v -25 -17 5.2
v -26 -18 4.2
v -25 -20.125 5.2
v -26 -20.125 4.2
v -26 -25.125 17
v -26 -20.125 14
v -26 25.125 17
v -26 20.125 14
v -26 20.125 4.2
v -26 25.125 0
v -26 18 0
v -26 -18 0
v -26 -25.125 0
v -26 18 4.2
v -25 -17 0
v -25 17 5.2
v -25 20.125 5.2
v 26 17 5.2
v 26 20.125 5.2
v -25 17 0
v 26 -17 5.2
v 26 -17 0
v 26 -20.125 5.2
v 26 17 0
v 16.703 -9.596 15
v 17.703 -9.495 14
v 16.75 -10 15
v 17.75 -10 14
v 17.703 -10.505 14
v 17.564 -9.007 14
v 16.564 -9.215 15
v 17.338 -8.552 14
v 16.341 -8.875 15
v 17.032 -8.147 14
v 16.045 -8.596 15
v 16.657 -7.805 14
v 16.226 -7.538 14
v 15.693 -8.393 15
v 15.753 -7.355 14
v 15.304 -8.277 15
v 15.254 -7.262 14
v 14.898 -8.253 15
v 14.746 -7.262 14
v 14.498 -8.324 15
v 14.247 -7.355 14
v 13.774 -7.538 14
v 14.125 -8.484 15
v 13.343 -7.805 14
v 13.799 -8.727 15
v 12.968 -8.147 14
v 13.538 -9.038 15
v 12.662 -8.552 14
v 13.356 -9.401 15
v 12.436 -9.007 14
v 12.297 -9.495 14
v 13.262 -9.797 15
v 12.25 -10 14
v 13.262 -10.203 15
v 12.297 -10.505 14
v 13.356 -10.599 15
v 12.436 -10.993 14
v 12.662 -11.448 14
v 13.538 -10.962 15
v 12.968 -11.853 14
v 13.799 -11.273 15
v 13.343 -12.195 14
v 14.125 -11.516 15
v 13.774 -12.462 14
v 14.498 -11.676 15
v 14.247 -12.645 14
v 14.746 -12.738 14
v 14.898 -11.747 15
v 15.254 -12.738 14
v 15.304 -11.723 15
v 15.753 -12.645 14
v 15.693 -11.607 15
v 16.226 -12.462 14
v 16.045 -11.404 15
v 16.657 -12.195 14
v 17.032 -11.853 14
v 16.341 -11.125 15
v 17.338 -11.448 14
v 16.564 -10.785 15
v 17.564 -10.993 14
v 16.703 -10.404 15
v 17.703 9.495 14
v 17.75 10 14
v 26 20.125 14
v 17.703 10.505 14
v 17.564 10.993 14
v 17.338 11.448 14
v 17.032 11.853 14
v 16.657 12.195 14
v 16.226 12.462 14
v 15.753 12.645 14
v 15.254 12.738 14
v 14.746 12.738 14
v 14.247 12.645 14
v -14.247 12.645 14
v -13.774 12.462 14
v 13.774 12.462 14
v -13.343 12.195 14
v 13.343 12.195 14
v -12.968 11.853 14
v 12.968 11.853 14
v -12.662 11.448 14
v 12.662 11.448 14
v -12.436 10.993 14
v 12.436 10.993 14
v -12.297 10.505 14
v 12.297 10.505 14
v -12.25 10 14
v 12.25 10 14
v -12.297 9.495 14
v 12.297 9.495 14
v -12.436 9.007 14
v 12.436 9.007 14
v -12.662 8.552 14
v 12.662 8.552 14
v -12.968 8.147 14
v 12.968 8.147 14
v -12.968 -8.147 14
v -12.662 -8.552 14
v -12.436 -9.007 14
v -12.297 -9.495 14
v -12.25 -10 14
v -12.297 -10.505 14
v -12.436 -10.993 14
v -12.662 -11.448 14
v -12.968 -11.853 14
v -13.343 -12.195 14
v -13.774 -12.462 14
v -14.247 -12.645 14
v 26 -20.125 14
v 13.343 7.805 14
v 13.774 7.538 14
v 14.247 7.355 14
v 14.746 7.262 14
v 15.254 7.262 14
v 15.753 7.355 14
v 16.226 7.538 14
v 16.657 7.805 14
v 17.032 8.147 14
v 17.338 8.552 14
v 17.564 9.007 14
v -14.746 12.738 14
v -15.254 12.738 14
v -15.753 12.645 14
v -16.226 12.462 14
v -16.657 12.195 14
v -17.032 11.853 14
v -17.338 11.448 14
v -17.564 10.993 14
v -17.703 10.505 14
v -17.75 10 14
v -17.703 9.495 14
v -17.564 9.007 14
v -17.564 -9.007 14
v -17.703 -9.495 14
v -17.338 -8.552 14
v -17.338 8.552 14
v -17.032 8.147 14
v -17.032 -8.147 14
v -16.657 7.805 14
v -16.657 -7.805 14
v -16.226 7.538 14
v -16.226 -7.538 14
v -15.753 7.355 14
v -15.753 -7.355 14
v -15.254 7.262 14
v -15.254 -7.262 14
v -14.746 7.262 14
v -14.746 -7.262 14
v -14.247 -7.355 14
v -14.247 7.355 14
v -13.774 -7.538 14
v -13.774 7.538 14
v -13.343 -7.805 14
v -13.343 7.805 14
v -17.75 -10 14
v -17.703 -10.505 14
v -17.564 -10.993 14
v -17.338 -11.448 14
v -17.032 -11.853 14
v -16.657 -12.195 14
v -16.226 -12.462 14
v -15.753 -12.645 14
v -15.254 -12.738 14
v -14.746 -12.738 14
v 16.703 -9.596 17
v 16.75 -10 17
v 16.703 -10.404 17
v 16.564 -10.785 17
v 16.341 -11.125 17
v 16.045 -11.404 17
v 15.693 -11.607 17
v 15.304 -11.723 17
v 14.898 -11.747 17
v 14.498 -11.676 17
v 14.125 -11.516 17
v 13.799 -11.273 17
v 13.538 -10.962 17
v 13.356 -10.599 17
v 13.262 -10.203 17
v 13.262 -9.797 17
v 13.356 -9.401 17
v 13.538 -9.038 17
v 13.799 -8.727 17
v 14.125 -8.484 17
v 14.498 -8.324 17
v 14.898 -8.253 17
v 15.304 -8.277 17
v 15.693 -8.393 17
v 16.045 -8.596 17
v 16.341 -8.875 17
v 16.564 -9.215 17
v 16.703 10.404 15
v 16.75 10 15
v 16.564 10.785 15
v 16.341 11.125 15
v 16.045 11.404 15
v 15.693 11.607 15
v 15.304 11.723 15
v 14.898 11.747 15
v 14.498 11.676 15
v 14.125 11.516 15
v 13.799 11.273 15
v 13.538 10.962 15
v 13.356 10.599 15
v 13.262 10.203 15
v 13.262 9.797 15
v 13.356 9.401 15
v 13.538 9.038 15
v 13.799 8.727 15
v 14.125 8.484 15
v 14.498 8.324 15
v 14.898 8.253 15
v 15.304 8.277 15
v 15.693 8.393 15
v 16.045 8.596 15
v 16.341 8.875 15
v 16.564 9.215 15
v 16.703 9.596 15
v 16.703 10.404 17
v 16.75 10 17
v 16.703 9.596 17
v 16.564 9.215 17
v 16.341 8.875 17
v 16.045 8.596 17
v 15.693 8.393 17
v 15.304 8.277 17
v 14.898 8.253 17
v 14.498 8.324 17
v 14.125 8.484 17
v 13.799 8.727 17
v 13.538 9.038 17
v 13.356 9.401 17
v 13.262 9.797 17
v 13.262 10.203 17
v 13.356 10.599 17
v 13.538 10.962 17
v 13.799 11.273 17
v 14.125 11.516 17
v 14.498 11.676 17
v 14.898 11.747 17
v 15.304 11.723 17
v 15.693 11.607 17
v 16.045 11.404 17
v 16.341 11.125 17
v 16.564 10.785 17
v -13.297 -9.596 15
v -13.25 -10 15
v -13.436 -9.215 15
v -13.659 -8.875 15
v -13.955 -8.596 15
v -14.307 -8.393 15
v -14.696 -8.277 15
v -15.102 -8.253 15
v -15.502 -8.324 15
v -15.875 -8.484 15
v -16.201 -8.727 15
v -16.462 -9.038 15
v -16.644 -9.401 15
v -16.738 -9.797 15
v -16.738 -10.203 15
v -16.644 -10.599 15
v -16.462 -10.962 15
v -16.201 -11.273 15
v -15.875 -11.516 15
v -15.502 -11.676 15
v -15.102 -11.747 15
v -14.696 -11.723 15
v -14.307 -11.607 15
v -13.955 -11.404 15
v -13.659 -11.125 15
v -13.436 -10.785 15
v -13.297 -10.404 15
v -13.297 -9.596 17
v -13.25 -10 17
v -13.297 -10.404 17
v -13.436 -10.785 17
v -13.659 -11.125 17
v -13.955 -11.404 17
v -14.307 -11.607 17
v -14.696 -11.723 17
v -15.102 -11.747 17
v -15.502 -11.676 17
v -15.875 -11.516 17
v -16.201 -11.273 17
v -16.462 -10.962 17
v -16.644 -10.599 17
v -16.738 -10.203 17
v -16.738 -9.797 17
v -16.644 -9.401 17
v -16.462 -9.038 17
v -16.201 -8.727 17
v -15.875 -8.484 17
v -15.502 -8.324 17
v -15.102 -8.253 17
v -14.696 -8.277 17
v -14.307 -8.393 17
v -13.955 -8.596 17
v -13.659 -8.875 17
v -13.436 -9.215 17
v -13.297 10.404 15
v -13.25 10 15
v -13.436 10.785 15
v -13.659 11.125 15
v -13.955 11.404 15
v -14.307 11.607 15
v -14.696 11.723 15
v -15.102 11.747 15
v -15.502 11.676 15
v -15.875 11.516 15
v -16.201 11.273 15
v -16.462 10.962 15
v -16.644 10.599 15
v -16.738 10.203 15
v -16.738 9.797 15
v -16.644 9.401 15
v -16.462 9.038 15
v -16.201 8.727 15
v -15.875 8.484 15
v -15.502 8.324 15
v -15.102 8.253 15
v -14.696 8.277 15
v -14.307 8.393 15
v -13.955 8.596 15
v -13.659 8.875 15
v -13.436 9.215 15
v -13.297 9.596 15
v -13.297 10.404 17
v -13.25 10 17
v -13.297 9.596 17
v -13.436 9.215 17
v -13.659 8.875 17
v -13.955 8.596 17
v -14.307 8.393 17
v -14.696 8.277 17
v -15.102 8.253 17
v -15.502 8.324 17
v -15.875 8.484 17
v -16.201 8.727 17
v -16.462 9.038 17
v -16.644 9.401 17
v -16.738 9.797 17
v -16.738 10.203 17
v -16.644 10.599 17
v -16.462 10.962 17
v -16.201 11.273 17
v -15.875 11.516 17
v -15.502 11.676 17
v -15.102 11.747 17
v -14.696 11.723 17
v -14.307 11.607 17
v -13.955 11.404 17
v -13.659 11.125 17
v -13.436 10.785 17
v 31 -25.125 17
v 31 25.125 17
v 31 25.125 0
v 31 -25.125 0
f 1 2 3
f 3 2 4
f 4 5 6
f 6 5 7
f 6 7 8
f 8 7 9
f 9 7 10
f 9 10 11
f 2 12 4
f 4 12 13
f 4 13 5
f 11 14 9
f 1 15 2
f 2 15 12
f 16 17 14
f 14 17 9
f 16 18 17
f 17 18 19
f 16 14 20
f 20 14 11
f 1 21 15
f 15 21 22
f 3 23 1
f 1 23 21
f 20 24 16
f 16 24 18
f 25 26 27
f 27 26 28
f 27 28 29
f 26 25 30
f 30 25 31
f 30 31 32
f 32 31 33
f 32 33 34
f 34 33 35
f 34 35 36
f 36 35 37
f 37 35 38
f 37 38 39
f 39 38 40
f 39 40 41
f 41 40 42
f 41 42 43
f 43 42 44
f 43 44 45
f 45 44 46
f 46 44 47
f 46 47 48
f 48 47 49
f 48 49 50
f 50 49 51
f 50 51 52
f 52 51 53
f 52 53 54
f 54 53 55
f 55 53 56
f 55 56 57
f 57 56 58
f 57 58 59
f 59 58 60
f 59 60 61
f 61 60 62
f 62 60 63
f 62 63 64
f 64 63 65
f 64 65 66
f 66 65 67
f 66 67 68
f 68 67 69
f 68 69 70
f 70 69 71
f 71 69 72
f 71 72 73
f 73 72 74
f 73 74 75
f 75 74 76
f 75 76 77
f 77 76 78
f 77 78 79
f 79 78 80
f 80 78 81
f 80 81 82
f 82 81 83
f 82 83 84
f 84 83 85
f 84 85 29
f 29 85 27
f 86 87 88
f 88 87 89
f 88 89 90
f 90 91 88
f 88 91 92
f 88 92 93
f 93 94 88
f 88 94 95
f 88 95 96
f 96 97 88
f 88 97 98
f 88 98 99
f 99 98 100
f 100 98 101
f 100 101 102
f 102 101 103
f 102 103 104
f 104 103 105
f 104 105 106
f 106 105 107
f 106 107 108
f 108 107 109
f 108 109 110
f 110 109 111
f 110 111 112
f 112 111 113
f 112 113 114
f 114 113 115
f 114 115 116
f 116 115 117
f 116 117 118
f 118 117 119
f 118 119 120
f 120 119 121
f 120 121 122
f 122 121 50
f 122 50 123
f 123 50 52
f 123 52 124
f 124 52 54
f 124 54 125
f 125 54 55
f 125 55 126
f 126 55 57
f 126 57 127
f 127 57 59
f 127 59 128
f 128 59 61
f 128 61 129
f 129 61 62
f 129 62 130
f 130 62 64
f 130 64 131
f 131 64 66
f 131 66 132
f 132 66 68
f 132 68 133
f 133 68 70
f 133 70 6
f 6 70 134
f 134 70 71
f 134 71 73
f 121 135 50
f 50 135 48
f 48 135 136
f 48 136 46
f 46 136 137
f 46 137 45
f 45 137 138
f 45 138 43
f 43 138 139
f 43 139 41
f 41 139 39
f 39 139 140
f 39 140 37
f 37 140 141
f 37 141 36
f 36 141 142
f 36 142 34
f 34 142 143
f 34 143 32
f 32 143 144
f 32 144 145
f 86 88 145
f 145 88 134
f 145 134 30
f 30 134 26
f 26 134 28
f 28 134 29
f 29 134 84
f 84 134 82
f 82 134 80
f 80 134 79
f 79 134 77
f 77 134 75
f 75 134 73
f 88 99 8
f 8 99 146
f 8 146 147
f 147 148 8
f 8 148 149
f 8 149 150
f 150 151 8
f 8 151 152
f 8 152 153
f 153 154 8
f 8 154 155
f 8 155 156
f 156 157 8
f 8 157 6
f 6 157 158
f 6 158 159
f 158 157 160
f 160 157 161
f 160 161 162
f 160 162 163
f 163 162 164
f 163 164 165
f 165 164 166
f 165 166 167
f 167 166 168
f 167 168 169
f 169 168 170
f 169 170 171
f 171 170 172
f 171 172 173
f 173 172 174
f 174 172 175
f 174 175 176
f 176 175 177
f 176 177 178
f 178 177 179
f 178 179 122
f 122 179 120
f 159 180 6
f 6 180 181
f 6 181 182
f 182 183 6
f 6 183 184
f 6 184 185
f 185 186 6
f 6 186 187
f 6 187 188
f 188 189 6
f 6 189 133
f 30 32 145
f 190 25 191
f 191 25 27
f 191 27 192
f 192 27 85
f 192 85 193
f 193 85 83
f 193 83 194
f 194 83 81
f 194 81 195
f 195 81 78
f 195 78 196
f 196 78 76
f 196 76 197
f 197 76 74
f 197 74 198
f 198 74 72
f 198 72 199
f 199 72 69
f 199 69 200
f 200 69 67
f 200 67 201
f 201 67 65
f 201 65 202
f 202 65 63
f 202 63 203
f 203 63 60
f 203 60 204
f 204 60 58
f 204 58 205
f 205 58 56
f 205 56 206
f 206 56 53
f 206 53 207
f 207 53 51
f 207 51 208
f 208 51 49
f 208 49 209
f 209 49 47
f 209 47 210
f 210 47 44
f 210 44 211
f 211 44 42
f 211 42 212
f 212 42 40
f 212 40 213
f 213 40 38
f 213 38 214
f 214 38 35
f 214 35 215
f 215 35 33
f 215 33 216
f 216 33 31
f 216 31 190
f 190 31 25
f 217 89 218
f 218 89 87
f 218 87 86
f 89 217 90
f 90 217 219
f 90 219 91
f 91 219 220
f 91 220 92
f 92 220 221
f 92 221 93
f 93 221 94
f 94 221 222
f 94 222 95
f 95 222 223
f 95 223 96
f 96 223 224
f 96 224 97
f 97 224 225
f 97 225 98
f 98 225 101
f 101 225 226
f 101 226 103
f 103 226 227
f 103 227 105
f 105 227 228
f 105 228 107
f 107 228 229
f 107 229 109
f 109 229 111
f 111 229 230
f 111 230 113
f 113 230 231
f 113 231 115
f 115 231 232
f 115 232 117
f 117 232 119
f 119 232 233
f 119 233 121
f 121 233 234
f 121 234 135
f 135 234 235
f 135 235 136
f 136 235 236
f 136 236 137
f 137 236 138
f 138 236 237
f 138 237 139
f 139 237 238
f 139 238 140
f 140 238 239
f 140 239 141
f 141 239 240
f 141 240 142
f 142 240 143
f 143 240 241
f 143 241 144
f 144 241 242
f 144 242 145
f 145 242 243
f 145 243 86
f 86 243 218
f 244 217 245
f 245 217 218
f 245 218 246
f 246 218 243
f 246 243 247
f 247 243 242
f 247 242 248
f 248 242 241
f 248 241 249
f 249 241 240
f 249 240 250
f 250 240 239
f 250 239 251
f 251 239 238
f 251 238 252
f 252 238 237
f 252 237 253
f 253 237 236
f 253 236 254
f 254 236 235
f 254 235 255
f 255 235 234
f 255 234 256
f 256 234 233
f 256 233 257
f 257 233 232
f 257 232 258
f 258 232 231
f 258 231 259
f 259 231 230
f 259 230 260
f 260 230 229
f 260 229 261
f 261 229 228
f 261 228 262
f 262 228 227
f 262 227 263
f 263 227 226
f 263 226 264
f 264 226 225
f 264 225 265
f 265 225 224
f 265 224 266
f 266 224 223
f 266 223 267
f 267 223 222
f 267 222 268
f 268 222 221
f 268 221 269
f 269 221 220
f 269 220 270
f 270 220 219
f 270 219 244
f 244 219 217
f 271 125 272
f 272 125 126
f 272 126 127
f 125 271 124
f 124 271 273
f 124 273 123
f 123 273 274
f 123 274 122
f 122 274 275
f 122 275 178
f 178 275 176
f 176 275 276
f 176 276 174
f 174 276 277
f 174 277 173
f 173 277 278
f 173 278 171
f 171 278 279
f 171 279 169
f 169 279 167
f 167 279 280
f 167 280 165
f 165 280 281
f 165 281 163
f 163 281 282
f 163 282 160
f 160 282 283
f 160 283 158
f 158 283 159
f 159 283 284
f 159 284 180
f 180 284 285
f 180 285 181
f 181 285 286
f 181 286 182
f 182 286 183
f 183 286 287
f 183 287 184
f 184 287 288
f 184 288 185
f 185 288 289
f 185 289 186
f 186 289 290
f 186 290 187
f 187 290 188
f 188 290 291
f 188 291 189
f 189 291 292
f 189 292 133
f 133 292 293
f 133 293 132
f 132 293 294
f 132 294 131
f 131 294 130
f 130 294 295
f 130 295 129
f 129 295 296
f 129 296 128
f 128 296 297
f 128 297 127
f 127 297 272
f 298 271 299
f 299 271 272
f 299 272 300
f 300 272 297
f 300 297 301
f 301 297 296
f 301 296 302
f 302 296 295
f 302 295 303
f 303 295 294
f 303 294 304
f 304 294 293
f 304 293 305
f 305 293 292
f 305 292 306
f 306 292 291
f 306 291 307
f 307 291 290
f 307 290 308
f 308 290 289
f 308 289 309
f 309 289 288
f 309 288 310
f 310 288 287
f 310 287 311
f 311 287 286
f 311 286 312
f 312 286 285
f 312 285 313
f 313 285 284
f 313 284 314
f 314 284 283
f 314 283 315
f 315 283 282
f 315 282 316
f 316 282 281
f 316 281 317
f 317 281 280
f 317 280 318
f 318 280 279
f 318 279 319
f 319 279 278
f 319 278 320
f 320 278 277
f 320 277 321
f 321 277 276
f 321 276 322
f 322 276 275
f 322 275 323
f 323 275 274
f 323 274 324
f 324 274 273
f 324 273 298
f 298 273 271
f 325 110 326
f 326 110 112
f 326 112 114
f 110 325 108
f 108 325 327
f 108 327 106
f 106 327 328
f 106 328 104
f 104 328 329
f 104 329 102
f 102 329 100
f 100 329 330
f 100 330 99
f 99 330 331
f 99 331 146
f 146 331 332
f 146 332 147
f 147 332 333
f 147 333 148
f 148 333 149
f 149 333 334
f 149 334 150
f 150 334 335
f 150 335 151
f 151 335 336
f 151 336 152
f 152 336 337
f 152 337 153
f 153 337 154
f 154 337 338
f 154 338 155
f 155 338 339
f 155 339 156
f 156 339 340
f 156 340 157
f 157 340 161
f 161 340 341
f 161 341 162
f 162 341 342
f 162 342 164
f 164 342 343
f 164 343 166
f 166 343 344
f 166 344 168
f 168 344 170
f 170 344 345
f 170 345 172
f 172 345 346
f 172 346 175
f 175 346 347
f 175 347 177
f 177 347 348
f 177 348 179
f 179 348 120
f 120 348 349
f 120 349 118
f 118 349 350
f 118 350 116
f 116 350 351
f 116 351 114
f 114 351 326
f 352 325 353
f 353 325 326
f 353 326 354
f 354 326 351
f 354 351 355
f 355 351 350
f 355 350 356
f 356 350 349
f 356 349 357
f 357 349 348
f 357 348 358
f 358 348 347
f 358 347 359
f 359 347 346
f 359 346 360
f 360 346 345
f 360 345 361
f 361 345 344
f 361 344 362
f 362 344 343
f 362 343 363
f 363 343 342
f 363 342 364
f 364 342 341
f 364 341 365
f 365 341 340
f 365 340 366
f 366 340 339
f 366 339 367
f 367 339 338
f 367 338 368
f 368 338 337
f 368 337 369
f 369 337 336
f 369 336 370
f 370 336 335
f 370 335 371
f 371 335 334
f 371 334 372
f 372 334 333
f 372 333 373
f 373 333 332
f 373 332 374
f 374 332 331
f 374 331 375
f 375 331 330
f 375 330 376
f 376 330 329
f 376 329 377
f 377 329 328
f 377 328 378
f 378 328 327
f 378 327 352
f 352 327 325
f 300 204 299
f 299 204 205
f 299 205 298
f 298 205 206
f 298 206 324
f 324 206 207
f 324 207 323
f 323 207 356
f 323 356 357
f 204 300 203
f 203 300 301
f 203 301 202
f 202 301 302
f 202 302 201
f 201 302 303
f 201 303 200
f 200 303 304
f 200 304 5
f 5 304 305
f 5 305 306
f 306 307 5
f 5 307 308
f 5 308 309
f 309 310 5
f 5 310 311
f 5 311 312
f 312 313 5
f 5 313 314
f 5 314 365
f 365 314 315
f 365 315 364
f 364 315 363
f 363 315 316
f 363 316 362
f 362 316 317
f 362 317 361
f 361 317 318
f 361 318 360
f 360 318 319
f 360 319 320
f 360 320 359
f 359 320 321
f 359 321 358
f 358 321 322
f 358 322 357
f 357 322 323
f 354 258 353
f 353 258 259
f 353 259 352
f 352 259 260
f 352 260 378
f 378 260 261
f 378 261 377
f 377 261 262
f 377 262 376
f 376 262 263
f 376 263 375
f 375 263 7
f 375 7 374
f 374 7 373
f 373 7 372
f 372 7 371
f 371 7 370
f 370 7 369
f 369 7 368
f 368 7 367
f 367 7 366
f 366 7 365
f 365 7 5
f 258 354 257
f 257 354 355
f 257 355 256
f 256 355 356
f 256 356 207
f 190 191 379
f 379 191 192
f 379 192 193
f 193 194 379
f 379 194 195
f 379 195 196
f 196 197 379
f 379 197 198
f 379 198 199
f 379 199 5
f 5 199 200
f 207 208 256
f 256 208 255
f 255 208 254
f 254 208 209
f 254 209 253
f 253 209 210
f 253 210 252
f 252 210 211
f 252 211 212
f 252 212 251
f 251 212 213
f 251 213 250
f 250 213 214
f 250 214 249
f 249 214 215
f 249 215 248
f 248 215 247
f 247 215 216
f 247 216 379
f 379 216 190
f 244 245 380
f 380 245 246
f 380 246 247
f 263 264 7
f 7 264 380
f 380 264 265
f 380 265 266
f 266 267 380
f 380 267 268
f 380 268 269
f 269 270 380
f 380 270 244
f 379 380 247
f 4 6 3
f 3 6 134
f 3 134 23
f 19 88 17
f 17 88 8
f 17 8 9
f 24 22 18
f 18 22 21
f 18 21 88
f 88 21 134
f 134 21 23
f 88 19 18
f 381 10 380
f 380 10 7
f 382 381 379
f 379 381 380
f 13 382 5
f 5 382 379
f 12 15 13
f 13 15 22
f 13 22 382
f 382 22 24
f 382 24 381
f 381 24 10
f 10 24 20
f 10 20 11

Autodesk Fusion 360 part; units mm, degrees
sketch "Sketch1" plane through (0, 0, 0) normal (0, 0, 1) x (1, 0, 0)
  line L0 (26, 17) -> (-26, 17)
  line L1 (-26, 17) -> (-26, -17)
  line L2 (-26, -17) -> (26, -17)
  line L3 (26, -17) -> (26, 17)
  line L4 (-26, 17) -> (26, -17) construction
  line L5 (26, 20.125) -> (-26, 20.125)
  line L6 (-26, 20.125) -> (-26, -20.125)
  line L7 (-26, -20.125) -> (26, -20.125)
  line L8 (26, -20.125) -> (26, 20.125)
  line L9 (-26, 20.125) -> (26, -20.125) construction
  line L10 (26, -20.125) -> (31, -20.125)
  line L11 (31, -20.125) -> (31, 0)
  line L12 (1.75, 0) -> (22.5, 0)
  line L13 (31, 20.125) -> (31, 0)
  line L14 (26, 20.125) -> (31, 20.125)
  line L15 (-26, -20.125) -> (-26, -25.125)
  line L16 (-26, -25.125) -> (31, -25.125)
  line L17 (31, -25.125) -> (31, -20.125)
  line L18 (-26, 25.125) -> (31, 25.125)
  line L19 (31, 25.125) -> (31, 20.125)
  line L20 (-26, 20.125) -> (-26, 25.125)
  dimension "d1" = 52
  dimension "d2" = 34
  dimension "d3" = 52
  dimension "d4" = 40.25
  dimension "d7" = 5
extrude "Extrude1" add sketch "Sketch1" along normal blind 5.2 contours L3 L8 L10 L11 L13 L14 | L0 L5 L6 L8 | L2 L6 L7 L8 | L5 L14 L18 L19 L20 | L7 L10 L15 L16 L17
extrude "Extrude2" add sketch "Sketch1" along normal blind 14 contours L3 L8 L10 L11 L13 L14 | L5 L14 L18 L19 L20 | L7 L10 L15 L16 L17
extrude "Extrude3" add sketch "Sketch1" along normal blind 17 and the other way blind -14
sketch "Sketch2" plane through (0, 0, 17) normal (0, 0, 1) x (-1, 0, 0)
  line L0 (26, -25.125) -> (26, 25.125)
  line L1 (26, 25.125) -> (-31, 25.125)
  line L2 (-31, 25.125) -> (-31, -25.125)
  line L3 (-31, -25.125) -> (26, -25.125)
  circle A0 centre (15, 10) radius 1.75
  circle A1 centre (-15, 10) radius 1.75
  line L4 (-1.75, 0) -> (-22.5, 0)
  circle A2 centre (-15, -10) radius 1.75
  circle A3 centre (15, -10) radius 1.75
  dimension "d14" = 3.5
  dimension "d15" = 3.5
extrude "Extrude4" cut sketch "Sketch2" against normal blind 5 contours A0 | A1 | A2 | A3
chamfer "Chamfer1" distance 1 angle 45 4 edges at (-13.3684, 10.6328, 14) (-13.3684, -9.3672, 14) (16.6316, 10.6328, 14) (16.6316, -9.3672, 14)
chamfer "Chamfer2" distance 1 angle 45 2 edges at (-26, 17, 2.6) (-26, -17, 2.6)
chamfer "Chamfer3" distance 1 angle 45 2 edges at (-26, 19.0625, 5.2) (-26, -19.0625, 5.2)
